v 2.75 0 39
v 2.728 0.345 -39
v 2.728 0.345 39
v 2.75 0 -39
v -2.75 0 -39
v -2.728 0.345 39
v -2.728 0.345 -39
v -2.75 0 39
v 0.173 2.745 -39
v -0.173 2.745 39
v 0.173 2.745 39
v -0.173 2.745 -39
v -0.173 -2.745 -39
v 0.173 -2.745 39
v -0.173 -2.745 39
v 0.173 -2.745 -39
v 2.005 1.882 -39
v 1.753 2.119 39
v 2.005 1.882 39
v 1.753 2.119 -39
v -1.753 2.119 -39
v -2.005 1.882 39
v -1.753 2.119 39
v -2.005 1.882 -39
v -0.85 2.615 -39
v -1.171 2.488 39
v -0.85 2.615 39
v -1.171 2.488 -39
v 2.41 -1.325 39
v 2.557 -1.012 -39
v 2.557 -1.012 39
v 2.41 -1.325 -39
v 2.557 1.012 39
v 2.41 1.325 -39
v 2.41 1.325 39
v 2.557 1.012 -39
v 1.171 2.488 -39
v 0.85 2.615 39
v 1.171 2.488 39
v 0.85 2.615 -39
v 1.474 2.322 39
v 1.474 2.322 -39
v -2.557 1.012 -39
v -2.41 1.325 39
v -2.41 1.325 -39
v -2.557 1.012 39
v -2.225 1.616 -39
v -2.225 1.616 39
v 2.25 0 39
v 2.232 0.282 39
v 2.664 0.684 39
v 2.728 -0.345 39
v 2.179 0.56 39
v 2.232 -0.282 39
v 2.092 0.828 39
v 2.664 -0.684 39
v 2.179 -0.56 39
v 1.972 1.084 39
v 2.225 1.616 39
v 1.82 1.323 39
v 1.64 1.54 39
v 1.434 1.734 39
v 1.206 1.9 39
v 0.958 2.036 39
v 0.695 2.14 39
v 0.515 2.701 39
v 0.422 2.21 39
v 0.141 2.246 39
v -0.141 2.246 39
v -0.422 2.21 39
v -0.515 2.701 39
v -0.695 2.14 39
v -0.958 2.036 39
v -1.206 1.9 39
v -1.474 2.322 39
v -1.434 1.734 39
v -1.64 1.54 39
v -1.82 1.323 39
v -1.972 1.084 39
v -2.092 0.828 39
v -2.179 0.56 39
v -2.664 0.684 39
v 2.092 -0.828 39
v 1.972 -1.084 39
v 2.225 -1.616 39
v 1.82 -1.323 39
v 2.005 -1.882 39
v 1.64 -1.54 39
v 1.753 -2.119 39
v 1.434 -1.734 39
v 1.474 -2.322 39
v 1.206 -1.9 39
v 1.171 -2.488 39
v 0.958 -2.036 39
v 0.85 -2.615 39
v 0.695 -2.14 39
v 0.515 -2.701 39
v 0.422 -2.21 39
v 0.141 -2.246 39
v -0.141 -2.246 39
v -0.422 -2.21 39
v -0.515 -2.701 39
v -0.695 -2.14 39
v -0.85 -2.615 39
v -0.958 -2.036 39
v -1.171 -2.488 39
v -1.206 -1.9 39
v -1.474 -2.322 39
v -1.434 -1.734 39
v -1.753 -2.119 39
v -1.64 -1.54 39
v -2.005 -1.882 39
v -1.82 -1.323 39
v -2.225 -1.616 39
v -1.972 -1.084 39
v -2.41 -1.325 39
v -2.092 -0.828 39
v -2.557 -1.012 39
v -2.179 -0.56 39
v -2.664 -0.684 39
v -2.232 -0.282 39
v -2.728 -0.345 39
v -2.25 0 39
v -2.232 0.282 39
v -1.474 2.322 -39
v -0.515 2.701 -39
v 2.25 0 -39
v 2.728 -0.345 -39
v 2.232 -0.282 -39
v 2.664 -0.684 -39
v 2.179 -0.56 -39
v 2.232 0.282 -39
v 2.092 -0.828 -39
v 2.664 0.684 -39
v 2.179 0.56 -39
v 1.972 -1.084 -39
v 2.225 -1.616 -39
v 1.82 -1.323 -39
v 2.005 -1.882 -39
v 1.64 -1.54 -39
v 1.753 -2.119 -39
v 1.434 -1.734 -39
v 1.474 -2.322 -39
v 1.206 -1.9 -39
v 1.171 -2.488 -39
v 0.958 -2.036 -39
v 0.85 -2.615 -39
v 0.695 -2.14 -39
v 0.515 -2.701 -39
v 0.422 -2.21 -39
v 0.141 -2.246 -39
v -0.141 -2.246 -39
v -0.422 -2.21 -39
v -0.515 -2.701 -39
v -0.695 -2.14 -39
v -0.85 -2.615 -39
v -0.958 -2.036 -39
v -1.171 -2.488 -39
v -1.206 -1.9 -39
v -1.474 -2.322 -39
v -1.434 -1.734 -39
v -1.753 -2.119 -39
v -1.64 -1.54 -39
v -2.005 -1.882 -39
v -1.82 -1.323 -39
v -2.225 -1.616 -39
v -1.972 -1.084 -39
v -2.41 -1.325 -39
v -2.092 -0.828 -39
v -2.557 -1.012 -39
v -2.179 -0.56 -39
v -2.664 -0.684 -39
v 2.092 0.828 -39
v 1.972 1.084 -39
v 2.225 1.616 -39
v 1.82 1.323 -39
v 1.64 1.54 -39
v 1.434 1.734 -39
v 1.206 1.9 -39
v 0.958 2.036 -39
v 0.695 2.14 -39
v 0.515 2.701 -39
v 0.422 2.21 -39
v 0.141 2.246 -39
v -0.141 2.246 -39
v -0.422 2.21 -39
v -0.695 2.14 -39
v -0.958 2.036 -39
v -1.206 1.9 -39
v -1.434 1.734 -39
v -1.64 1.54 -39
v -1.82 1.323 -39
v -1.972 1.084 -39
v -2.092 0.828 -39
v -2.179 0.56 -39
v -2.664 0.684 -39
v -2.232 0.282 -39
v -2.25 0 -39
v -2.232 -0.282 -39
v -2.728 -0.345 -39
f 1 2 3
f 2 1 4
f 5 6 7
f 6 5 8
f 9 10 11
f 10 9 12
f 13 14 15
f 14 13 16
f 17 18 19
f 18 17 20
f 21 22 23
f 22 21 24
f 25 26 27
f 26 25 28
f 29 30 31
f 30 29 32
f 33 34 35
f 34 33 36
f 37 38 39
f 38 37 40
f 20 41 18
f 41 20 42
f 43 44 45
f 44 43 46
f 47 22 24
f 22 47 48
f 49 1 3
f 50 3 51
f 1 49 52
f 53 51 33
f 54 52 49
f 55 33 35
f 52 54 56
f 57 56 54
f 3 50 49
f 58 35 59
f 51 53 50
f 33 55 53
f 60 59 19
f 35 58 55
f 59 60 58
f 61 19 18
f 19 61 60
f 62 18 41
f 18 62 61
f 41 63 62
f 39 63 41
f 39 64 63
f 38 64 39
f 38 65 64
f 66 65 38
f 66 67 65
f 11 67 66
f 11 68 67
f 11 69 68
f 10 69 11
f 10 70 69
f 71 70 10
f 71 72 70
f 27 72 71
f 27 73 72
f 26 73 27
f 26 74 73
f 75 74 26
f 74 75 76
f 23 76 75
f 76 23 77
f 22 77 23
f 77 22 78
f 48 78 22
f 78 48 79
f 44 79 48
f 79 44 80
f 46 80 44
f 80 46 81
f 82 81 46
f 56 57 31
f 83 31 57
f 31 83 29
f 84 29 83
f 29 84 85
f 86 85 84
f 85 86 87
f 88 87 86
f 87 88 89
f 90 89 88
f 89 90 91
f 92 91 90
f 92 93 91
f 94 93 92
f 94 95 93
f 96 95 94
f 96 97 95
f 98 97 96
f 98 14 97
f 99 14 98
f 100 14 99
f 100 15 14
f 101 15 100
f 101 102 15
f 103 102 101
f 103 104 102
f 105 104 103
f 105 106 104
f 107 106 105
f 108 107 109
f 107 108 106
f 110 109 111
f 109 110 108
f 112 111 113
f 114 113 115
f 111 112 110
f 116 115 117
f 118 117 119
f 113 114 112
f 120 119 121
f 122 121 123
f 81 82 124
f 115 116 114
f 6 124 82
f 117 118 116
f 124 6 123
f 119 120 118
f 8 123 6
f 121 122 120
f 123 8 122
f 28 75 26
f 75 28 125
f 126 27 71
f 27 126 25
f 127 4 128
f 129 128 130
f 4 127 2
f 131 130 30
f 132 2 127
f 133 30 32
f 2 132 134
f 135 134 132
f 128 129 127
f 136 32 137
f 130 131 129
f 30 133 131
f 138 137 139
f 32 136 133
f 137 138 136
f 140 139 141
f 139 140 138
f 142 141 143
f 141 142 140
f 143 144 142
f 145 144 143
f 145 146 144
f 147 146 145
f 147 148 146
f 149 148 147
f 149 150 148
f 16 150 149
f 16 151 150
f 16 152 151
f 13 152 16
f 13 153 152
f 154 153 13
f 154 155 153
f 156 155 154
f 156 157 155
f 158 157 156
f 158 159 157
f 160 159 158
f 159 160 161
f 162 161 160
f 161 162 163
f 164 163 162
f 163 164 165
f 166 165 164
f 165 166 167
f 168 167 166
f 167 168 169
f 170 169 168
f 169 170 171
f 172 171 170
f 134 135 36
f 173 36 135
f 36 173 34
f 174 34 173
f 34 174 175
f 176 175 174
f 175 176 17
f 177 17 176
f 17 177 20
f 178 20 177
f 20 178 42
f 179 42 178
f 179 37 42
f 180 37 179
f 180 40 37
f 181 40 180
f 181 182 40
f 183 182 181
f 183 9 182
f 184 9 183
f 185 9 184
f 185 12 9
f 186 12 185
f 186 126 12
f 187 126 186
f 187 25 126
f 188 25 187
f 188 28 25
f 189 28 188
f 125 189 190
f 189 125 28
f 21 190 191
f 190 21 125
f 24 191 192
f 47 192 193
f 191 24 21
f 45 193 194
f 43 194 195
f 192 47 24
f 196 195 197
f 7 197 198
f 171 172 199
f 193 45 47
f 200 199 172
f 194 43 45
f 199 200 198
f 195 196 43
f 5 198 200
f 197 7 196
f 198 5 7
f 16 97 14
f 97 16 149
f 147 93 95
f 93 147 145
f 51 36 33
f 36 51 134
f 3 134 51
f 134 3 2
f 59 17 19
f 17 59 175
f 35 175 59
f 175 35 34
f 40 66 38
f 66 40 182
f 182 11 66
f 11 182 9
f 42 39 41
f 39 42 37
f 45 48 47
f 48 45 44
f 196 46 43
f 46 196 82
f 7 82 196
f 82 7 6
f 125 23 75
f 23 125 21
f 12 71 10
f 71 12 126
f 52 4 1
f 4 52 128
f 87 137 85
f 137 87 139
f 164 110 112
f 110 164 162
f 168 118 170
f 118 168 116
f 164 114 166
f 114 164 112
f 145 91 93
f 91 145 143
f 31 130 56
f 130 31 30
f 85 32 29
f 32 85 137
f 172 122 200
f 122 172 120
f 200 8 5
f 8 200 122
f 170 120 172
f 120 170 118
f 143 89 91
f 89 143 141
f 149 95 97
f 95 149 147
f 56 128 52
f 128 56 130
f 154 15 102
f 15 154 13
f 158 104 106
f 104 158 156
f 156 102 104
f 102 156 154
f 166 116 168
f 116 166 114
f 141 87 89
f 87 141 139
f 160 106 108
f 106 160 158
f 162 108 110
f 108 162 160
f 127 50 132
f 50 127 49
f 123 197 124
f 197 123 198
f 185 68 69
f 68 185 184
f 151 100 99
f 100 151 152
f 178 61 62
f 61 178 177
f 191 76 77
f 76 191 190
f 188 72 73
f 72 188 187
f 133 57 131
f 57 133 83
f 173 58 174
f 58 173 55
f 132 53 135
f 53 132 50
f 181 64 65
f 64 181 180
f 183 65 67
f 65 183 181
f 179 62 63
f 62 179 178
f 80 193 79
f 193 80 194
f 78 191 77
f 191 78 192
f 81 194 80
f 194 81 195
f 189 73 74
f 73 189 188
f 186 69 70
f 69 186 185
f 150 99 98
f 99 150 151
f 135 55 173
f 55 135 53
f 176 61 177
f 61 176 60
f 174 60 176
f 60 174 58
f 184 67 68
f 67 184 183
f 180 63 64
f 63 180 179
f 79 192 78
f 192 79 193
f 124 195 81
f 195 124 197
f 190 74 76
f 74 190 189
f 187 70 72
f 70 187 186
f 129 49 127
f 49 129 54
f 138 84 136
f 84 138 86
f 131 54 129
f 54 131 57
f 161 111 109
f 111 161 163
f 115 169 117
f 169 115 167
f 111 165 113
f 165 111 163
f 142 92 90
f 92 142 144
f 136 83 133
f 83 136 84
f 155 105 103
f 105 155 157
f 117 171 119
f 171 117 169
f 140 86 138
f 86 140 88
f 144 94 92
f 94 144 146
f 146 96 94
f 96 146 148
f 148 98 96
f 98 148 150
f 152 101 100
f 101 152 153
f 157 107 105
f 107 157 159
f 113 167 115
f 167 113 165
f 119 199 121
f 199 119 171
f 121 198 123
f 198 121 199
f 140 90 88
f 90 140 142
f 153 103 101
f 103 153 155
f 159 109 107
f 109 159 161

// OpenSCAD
$fn = 50;


difference() {
	union() {
		translate(v = [0, 0, -39.0000000000]) {
			cylinder(h = 78, r = 2.7500000000);
		}
	}
	union() {
		translate(v = [0, 0, -100.0000000000]) {
			cylinder(h = 200, r = 2.2500000000);
		}
	}
}
